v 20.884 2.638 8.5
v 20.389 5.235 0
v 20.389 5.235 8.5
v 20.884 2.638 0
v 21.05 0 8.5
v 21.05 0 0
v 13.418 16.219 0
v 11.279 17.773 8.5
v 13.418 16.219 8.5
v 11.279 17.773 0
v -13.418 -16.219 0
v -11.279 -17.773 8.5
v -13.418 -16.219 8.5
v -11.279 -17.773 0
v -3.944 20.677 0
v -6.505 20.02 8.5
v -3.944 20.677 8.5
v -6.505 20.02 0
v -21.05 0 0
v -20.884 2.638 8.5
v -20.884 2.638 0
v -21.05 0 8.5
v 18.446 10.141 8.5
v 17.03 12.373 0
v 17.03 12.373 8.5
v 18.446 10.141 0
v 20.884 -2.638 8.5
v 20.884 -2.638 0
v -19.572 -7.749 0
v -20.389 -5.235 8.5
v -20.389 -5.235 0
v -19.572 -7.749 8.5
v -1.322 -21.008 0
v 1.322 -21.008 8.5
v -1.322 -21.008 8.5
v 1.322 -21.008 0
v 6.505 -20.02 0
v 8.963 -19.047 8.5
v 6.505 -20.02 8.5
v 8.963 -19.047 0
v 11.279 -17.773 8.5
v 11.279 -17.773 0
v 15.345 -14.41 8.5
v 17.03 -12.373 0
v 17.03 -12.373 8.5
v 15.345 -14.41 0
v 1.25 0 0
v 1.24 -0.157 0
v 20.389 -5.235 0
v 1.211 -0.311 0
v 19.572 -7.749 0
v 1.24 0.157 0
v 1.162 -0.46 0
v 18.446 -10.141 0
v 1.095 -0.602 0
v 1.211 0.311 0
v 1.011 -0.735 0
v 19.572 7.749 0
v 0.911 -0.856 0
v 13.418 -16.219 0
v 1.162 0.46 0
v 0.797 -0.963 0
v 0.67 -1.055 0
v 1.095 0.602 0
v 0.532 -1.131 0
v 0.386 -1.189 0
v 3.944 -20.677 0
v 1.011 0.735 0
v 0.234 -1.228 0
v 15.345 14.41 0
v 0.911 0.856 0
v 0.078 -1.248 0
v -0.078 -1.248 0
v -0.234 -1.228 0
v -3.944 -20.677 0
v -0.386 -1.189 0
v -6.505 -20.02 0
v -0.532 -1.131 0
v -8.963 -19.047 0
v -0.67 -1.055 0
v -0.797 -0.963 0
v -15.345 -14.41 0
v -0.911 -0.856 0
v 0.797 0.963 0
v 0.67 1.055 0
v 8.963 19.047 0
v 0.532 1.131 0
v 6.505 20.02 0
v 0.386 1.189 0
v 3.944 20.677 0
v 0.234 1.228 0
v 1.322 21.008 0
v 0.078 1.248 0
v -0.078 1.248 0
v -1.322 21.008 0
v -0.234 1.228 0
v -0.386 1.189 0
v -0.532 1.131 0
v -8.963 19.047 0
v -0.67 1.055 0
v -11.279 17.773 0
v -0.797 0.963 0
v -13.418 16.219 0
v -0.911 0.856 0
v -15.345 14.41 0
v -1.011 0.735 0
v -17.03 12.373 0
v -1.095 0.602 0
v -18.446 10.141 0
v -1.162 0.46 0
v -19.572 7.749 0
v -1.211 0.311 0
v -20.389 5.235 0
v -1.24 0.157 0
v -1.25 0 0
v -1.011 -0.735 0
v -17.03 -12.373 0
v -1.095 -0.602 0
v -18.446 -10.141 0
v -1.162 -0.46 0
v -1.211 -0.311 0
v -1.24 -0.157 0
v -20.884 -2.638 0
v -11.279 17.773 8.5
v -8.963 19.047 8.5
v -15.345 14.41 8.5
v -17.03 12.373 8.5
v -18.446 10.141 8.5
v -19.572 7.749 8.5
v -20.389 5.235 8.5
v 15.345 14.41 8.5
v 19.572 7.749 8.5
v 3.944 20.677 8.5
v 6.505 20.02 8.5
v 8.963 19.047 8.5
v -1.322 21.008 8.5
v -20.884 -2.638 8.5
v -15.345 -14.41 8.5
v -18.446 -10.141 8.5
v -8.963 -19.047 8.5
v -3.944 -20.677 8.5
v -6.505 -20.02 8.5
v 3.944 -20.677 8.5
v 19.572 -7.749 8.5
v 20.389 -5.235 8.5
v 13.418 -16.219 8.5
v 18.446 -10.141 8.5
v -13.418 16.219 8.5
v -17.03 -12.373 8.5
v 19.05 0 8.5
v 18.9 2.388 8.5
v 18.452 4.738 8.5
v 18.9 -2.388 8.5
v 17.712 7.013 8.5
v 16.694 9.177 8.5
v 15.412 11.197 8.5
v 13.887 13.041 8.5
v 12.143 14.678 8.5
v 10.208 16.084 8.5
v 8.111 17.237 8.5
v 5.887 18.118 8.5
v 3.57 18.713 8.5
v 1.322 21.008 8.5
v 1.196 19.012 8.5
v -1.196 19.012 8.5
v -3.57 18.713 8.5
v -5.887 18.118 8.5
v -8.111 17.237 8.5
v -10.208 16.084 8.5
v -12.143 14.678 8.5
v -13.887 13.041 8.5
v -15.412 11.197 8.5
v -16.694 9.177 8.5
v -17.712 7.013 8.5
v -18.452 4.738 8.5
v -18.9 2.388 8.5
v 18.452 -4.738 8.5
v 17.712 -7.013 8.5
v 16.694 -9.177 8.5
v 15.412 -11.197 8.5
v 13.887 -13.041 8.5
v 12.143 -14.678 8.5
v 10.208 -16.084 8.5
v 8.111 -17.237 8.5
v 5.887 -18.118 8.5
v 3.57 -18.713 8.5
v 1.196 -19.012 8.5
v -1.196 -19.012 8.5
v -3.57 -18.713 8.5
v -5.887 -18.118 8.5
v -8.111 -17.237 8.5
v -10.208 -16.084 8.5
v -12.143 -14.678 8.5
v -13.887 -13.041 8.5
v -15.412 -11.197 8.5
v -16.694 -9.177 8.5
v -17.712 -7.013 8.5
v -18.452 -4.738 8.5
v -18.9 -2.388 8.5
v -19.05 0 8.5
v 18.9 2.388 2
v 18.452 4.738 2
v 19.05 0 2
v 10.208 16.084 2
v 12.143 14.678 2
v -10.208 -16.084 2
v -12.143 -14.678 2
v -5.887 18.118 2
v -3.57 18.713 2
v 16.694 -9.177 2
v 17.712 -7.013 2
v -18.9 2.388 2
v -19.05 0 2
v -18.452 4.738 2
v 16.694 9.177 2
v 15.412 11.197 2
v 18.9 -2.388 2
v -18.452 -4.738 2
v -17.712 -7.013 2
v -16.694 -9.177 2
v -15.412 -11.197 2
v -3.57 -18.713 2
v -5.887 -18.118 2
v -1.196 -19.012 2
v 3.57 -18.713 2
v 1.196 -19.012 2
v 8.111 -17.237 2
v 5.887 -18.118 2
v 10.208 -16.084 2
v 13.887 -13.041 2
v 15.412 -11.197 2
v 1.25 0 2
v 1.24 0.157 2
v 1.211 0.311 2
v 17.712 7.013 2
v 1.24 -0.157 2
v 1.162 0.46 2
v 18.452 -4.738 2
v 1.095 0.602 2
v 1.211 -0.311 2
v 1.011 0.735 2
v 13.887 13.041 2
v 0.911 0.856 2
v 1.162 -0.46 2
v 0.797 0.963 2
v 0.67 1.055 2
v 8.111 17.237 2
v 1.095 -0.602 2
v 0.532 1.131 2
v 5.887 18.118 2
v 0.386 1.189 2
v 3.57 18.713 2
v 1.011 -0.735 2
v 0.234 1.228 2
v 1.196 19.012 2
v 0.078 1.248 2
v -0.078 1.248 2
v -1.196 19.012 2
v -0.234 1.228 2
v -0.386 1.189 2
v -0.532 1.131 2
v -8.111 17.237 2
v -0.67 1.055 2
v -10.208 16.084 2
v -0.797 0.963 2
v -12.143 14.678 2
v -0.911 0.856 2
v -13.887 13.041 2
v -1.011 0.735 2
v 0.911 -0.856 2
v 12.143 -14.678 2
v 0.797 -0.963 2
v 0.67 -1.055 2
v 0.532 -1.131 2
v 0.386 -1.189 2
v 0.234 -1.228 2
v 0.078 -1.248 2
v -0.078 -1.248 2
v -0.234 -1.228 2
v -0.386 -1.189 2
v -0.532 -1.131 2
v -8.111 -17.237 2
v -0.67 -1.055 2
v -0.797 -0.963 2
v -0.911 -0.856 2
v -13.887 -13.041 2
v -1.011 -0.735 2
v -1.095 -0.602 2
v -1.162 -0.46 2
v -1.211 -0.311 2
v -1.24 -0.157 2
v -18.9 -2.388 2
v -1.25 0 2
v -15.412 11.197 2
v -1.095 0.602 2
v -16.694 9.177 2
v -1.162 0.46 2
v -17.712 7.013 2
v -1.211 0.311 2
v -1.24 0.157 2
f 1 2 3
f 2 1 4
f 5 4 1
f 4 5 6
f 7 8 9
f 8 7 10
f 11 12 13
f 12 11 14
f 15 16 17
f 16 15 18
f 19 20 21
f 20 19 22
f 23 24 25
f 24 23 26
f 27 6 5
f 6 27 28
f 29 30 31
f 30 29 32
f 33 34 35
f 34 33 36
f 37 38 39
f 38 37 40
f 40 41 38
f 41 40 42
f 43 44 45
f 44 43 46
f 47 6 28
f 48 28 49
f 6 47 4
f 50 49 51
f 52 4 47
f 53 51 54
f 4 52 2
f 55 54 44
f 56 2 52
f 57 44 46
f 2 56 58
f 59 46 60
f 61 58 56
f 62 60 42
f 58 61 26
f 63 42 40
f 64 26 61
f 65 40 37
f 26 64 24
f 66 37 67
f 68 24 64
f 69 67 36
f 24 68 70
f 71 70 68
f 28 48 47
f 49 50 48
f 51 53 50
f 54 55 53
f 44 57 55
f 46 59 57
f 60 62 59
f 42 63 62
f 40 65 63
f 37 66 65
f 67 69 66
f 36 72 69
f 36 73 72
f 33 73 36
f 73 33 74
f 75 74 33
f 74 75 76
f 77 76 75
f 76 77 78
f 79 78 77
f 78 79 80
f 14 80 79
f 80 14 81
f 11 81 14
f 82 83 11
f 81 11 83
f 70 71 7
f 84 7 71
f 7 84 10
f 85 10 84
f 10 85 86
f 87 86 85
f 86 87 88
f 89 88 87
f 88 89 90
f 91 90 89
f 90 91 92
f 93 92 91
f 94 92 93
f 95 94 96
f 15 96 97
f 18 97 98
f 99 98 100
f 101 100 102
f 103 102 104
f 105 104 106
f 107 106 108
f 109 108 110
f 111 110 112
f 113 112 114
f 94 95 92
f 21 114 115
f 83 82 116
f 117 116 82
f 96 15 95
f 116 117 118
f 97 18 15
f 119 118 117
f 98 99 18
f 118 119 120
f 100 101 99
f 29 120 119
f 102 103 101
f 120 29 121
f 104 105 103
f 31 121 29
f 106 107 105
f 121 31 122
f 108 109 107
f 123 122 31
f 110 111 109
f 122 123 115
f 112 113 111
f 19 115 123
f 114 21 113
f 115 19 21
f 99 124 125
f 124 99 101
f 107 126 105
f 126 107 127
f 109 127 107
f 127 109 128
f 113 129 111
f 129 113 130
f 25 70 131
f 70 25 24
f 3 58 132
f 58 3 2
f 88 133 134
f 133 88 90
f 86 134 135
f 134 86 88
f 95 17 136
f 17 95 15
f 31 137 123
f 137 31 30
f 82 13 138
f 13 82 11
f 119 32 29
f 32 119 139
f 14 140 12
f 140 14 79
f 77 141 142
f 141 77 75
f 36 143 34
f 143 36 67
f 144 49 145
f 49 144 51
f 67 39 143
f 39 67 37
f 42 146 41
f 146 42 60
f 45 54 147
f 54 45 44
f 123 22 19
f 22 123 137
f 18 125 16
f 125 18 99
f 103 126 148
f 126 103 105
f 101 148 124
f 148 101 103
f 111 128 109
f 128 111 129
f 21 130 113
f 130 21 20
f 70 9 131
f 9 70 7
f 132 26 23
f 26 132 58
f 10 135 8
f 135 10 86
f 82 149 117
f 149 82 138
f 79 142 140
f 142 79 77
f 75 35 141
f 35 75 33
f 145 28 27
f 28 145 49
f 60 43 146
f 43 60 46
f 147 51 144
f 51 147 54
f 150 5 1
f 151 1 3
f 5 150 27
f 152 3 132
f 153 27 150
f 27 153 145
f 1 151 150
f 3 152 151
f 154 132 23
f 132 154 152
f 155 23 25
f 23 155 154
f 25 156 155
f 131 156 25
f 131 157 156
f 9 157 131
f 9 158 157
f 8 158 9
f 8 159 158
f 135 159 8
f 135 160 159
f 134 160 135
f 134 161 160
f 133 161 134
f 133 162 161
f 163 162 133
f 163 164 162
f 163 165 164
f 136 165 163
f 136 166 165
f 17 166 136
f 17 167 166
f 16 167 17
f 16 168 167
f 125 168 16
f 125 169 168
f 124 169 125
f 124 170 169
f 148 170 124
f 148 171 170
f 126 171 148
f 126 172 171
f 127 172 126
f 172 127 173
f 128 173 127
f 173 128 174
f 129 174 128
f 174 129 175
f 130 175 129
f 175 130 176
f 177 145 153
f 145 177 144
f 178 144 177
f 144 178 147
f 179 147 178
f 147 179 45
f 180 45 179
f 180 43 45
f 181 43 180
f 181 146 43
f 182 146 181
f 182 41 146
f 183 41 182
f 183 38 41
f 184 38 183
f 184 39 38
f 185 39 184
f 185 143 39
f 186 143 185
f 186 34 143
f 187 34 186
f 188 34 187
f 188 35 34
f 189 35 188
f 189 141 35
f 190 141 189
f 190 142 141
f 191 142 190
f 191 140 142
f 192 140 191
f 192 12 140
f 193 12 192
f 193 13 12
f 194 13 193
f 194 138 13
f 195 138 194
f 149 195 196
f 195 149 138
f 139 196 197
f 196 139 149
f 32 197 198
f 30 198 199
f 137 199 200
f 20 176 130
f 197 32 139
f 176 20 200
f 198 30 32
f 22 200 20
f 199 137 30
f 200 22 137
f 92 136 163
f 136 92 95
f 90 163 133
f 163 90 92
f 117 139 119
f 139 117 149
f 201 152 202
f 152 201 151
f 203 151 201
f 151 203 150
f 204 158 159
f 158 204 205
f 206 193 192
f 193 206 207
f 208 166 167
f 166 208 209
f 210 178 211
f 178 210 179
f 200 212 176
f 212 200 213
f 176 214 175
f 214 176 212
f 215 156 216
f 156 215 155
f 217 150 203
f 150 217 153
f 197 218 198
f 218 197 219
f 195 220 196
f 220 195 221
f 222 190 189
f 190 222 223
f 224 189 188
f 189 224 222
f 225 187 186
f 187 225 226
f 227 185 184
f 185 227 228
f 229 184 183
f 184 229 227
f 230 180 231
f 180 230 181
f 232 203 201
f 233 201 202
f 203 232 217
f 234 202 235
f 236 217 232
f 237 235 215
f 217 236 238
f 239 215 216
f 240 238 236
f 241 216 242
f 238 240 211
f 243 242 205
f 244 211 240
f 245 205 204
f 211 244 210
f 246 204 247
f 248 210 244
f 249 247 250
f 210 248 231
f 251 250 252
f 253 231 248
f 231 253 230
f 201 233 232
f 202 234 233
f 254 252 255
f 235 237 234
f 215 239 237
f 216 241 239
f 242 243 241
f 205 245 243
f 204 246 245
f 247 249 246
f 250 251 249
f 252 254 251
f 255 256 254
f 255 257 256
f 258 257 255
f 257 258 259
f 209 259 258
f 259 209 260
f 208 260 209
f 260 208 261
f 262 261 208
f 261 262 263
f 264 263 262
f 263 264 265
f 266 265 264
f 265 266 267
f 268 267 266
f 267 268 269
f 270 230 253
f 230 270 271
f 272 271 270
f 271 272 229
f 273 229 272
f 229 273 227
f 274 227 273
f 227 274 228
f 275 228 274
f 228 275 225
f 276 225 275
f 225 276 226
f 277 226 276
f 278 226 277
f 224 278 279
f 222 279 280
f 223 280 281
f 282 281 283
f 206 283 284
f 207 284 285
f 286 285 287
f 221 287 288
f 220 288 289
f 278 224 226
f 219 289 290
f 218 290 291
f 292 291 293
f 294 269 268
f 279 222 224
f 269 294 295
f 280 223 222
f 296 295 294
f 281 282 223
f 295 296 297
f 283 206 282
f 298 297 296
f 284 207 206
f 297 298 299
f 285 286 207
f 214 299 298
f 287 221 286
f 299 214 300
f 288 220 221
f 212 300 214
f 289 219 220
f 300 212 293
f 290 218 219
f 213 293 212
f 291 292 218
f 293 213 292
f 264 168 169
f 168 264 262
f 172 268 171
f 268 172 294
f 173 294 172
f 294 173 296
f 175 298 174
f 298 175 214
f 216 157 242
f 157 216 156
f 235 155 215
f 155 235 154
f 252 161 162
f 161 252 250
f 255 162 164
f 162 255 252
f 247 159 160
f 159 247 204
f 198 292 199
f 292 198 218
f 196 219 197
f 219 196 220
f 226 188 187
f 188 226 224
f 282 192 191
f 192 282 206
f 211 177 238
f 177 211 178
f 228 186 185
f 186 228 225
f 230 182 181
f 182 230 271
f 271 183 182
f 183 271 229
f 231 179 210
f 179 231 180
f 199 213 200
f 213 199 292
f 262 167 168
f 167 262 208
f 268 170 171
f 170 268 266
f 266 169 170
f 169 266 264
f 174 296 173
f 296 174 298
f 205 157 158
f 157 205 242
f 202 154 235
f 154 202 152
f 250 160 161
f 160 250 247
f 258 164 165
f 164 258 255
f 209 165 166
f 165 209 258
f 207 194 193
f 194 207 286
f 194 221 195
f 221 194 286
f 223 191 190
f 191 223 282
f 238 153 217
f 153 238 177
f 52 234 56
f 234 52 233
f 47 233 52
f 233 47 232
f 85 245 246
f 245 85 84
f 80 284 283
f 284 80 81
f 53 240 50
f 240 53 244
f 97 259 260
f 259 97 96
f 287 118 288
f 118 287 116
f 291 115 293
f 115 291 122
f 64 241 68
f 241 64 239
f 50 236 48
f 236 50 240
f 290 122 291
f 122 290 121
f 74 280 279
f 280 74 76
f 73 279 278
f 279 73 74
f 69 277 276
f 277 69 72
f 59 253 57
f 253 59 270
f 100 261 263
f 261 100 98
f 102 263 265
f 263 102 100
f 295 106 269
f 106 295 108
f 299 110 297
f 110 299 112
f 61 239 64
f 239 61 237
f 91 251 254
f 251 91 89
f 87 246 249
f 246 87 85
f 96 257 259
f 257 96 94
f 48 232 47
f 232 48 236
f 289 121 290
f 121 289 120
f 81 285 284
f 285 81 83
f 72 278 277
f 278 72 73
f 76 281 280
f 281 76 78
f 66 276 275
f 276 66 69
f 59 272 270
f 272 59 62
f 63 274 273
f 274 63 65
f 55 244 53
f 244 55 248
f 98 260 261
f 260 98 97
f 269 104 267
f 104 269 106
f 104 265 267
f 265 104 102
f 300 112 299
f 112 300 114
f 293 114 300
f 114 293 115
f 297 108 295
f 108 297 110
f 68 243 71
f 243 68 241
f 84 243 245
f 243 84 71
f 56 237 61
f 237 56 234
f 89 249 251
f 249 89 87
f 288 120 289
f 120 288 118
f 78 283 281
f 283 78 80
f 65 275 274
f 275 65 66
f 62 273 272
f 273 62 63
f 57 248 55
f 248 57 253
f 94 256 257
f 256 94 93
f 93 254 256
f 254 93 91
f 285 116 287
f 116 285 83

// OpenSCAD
INNER_DIAMETER = 38.1;
SHELL_WIDTH = 2;
OUTER_DIAMETER = INNER_DIAMETER + SHELL_WIDTH*2;
INNER_HEIGHT = 6.5;
OUTER_HEIGHT = INNER_HEIGHT + SHELL_WIDTH;
SCREW_HOLE_DIAMETER = 2.5;

difference() {
// outer shell
linear_extrude(height=OUTER_HEIGHT)
circle(d=OUTER_DIAMETER, $fn=50);

// inner hole
translate([0, 0, SHELL_WIDTH])
linear_extrude(height=INNER_HEIGHT*1.5)
circle(d=INNER_DIAMETER, $fn=50);
    
// screw hole
translate([0, 0, -SHELL_WIDTH])
linear_extrude(SHELL_WIDTH*3)
circle(d=SCREW_HOLE_DIAMETER, $fn=50);
}
